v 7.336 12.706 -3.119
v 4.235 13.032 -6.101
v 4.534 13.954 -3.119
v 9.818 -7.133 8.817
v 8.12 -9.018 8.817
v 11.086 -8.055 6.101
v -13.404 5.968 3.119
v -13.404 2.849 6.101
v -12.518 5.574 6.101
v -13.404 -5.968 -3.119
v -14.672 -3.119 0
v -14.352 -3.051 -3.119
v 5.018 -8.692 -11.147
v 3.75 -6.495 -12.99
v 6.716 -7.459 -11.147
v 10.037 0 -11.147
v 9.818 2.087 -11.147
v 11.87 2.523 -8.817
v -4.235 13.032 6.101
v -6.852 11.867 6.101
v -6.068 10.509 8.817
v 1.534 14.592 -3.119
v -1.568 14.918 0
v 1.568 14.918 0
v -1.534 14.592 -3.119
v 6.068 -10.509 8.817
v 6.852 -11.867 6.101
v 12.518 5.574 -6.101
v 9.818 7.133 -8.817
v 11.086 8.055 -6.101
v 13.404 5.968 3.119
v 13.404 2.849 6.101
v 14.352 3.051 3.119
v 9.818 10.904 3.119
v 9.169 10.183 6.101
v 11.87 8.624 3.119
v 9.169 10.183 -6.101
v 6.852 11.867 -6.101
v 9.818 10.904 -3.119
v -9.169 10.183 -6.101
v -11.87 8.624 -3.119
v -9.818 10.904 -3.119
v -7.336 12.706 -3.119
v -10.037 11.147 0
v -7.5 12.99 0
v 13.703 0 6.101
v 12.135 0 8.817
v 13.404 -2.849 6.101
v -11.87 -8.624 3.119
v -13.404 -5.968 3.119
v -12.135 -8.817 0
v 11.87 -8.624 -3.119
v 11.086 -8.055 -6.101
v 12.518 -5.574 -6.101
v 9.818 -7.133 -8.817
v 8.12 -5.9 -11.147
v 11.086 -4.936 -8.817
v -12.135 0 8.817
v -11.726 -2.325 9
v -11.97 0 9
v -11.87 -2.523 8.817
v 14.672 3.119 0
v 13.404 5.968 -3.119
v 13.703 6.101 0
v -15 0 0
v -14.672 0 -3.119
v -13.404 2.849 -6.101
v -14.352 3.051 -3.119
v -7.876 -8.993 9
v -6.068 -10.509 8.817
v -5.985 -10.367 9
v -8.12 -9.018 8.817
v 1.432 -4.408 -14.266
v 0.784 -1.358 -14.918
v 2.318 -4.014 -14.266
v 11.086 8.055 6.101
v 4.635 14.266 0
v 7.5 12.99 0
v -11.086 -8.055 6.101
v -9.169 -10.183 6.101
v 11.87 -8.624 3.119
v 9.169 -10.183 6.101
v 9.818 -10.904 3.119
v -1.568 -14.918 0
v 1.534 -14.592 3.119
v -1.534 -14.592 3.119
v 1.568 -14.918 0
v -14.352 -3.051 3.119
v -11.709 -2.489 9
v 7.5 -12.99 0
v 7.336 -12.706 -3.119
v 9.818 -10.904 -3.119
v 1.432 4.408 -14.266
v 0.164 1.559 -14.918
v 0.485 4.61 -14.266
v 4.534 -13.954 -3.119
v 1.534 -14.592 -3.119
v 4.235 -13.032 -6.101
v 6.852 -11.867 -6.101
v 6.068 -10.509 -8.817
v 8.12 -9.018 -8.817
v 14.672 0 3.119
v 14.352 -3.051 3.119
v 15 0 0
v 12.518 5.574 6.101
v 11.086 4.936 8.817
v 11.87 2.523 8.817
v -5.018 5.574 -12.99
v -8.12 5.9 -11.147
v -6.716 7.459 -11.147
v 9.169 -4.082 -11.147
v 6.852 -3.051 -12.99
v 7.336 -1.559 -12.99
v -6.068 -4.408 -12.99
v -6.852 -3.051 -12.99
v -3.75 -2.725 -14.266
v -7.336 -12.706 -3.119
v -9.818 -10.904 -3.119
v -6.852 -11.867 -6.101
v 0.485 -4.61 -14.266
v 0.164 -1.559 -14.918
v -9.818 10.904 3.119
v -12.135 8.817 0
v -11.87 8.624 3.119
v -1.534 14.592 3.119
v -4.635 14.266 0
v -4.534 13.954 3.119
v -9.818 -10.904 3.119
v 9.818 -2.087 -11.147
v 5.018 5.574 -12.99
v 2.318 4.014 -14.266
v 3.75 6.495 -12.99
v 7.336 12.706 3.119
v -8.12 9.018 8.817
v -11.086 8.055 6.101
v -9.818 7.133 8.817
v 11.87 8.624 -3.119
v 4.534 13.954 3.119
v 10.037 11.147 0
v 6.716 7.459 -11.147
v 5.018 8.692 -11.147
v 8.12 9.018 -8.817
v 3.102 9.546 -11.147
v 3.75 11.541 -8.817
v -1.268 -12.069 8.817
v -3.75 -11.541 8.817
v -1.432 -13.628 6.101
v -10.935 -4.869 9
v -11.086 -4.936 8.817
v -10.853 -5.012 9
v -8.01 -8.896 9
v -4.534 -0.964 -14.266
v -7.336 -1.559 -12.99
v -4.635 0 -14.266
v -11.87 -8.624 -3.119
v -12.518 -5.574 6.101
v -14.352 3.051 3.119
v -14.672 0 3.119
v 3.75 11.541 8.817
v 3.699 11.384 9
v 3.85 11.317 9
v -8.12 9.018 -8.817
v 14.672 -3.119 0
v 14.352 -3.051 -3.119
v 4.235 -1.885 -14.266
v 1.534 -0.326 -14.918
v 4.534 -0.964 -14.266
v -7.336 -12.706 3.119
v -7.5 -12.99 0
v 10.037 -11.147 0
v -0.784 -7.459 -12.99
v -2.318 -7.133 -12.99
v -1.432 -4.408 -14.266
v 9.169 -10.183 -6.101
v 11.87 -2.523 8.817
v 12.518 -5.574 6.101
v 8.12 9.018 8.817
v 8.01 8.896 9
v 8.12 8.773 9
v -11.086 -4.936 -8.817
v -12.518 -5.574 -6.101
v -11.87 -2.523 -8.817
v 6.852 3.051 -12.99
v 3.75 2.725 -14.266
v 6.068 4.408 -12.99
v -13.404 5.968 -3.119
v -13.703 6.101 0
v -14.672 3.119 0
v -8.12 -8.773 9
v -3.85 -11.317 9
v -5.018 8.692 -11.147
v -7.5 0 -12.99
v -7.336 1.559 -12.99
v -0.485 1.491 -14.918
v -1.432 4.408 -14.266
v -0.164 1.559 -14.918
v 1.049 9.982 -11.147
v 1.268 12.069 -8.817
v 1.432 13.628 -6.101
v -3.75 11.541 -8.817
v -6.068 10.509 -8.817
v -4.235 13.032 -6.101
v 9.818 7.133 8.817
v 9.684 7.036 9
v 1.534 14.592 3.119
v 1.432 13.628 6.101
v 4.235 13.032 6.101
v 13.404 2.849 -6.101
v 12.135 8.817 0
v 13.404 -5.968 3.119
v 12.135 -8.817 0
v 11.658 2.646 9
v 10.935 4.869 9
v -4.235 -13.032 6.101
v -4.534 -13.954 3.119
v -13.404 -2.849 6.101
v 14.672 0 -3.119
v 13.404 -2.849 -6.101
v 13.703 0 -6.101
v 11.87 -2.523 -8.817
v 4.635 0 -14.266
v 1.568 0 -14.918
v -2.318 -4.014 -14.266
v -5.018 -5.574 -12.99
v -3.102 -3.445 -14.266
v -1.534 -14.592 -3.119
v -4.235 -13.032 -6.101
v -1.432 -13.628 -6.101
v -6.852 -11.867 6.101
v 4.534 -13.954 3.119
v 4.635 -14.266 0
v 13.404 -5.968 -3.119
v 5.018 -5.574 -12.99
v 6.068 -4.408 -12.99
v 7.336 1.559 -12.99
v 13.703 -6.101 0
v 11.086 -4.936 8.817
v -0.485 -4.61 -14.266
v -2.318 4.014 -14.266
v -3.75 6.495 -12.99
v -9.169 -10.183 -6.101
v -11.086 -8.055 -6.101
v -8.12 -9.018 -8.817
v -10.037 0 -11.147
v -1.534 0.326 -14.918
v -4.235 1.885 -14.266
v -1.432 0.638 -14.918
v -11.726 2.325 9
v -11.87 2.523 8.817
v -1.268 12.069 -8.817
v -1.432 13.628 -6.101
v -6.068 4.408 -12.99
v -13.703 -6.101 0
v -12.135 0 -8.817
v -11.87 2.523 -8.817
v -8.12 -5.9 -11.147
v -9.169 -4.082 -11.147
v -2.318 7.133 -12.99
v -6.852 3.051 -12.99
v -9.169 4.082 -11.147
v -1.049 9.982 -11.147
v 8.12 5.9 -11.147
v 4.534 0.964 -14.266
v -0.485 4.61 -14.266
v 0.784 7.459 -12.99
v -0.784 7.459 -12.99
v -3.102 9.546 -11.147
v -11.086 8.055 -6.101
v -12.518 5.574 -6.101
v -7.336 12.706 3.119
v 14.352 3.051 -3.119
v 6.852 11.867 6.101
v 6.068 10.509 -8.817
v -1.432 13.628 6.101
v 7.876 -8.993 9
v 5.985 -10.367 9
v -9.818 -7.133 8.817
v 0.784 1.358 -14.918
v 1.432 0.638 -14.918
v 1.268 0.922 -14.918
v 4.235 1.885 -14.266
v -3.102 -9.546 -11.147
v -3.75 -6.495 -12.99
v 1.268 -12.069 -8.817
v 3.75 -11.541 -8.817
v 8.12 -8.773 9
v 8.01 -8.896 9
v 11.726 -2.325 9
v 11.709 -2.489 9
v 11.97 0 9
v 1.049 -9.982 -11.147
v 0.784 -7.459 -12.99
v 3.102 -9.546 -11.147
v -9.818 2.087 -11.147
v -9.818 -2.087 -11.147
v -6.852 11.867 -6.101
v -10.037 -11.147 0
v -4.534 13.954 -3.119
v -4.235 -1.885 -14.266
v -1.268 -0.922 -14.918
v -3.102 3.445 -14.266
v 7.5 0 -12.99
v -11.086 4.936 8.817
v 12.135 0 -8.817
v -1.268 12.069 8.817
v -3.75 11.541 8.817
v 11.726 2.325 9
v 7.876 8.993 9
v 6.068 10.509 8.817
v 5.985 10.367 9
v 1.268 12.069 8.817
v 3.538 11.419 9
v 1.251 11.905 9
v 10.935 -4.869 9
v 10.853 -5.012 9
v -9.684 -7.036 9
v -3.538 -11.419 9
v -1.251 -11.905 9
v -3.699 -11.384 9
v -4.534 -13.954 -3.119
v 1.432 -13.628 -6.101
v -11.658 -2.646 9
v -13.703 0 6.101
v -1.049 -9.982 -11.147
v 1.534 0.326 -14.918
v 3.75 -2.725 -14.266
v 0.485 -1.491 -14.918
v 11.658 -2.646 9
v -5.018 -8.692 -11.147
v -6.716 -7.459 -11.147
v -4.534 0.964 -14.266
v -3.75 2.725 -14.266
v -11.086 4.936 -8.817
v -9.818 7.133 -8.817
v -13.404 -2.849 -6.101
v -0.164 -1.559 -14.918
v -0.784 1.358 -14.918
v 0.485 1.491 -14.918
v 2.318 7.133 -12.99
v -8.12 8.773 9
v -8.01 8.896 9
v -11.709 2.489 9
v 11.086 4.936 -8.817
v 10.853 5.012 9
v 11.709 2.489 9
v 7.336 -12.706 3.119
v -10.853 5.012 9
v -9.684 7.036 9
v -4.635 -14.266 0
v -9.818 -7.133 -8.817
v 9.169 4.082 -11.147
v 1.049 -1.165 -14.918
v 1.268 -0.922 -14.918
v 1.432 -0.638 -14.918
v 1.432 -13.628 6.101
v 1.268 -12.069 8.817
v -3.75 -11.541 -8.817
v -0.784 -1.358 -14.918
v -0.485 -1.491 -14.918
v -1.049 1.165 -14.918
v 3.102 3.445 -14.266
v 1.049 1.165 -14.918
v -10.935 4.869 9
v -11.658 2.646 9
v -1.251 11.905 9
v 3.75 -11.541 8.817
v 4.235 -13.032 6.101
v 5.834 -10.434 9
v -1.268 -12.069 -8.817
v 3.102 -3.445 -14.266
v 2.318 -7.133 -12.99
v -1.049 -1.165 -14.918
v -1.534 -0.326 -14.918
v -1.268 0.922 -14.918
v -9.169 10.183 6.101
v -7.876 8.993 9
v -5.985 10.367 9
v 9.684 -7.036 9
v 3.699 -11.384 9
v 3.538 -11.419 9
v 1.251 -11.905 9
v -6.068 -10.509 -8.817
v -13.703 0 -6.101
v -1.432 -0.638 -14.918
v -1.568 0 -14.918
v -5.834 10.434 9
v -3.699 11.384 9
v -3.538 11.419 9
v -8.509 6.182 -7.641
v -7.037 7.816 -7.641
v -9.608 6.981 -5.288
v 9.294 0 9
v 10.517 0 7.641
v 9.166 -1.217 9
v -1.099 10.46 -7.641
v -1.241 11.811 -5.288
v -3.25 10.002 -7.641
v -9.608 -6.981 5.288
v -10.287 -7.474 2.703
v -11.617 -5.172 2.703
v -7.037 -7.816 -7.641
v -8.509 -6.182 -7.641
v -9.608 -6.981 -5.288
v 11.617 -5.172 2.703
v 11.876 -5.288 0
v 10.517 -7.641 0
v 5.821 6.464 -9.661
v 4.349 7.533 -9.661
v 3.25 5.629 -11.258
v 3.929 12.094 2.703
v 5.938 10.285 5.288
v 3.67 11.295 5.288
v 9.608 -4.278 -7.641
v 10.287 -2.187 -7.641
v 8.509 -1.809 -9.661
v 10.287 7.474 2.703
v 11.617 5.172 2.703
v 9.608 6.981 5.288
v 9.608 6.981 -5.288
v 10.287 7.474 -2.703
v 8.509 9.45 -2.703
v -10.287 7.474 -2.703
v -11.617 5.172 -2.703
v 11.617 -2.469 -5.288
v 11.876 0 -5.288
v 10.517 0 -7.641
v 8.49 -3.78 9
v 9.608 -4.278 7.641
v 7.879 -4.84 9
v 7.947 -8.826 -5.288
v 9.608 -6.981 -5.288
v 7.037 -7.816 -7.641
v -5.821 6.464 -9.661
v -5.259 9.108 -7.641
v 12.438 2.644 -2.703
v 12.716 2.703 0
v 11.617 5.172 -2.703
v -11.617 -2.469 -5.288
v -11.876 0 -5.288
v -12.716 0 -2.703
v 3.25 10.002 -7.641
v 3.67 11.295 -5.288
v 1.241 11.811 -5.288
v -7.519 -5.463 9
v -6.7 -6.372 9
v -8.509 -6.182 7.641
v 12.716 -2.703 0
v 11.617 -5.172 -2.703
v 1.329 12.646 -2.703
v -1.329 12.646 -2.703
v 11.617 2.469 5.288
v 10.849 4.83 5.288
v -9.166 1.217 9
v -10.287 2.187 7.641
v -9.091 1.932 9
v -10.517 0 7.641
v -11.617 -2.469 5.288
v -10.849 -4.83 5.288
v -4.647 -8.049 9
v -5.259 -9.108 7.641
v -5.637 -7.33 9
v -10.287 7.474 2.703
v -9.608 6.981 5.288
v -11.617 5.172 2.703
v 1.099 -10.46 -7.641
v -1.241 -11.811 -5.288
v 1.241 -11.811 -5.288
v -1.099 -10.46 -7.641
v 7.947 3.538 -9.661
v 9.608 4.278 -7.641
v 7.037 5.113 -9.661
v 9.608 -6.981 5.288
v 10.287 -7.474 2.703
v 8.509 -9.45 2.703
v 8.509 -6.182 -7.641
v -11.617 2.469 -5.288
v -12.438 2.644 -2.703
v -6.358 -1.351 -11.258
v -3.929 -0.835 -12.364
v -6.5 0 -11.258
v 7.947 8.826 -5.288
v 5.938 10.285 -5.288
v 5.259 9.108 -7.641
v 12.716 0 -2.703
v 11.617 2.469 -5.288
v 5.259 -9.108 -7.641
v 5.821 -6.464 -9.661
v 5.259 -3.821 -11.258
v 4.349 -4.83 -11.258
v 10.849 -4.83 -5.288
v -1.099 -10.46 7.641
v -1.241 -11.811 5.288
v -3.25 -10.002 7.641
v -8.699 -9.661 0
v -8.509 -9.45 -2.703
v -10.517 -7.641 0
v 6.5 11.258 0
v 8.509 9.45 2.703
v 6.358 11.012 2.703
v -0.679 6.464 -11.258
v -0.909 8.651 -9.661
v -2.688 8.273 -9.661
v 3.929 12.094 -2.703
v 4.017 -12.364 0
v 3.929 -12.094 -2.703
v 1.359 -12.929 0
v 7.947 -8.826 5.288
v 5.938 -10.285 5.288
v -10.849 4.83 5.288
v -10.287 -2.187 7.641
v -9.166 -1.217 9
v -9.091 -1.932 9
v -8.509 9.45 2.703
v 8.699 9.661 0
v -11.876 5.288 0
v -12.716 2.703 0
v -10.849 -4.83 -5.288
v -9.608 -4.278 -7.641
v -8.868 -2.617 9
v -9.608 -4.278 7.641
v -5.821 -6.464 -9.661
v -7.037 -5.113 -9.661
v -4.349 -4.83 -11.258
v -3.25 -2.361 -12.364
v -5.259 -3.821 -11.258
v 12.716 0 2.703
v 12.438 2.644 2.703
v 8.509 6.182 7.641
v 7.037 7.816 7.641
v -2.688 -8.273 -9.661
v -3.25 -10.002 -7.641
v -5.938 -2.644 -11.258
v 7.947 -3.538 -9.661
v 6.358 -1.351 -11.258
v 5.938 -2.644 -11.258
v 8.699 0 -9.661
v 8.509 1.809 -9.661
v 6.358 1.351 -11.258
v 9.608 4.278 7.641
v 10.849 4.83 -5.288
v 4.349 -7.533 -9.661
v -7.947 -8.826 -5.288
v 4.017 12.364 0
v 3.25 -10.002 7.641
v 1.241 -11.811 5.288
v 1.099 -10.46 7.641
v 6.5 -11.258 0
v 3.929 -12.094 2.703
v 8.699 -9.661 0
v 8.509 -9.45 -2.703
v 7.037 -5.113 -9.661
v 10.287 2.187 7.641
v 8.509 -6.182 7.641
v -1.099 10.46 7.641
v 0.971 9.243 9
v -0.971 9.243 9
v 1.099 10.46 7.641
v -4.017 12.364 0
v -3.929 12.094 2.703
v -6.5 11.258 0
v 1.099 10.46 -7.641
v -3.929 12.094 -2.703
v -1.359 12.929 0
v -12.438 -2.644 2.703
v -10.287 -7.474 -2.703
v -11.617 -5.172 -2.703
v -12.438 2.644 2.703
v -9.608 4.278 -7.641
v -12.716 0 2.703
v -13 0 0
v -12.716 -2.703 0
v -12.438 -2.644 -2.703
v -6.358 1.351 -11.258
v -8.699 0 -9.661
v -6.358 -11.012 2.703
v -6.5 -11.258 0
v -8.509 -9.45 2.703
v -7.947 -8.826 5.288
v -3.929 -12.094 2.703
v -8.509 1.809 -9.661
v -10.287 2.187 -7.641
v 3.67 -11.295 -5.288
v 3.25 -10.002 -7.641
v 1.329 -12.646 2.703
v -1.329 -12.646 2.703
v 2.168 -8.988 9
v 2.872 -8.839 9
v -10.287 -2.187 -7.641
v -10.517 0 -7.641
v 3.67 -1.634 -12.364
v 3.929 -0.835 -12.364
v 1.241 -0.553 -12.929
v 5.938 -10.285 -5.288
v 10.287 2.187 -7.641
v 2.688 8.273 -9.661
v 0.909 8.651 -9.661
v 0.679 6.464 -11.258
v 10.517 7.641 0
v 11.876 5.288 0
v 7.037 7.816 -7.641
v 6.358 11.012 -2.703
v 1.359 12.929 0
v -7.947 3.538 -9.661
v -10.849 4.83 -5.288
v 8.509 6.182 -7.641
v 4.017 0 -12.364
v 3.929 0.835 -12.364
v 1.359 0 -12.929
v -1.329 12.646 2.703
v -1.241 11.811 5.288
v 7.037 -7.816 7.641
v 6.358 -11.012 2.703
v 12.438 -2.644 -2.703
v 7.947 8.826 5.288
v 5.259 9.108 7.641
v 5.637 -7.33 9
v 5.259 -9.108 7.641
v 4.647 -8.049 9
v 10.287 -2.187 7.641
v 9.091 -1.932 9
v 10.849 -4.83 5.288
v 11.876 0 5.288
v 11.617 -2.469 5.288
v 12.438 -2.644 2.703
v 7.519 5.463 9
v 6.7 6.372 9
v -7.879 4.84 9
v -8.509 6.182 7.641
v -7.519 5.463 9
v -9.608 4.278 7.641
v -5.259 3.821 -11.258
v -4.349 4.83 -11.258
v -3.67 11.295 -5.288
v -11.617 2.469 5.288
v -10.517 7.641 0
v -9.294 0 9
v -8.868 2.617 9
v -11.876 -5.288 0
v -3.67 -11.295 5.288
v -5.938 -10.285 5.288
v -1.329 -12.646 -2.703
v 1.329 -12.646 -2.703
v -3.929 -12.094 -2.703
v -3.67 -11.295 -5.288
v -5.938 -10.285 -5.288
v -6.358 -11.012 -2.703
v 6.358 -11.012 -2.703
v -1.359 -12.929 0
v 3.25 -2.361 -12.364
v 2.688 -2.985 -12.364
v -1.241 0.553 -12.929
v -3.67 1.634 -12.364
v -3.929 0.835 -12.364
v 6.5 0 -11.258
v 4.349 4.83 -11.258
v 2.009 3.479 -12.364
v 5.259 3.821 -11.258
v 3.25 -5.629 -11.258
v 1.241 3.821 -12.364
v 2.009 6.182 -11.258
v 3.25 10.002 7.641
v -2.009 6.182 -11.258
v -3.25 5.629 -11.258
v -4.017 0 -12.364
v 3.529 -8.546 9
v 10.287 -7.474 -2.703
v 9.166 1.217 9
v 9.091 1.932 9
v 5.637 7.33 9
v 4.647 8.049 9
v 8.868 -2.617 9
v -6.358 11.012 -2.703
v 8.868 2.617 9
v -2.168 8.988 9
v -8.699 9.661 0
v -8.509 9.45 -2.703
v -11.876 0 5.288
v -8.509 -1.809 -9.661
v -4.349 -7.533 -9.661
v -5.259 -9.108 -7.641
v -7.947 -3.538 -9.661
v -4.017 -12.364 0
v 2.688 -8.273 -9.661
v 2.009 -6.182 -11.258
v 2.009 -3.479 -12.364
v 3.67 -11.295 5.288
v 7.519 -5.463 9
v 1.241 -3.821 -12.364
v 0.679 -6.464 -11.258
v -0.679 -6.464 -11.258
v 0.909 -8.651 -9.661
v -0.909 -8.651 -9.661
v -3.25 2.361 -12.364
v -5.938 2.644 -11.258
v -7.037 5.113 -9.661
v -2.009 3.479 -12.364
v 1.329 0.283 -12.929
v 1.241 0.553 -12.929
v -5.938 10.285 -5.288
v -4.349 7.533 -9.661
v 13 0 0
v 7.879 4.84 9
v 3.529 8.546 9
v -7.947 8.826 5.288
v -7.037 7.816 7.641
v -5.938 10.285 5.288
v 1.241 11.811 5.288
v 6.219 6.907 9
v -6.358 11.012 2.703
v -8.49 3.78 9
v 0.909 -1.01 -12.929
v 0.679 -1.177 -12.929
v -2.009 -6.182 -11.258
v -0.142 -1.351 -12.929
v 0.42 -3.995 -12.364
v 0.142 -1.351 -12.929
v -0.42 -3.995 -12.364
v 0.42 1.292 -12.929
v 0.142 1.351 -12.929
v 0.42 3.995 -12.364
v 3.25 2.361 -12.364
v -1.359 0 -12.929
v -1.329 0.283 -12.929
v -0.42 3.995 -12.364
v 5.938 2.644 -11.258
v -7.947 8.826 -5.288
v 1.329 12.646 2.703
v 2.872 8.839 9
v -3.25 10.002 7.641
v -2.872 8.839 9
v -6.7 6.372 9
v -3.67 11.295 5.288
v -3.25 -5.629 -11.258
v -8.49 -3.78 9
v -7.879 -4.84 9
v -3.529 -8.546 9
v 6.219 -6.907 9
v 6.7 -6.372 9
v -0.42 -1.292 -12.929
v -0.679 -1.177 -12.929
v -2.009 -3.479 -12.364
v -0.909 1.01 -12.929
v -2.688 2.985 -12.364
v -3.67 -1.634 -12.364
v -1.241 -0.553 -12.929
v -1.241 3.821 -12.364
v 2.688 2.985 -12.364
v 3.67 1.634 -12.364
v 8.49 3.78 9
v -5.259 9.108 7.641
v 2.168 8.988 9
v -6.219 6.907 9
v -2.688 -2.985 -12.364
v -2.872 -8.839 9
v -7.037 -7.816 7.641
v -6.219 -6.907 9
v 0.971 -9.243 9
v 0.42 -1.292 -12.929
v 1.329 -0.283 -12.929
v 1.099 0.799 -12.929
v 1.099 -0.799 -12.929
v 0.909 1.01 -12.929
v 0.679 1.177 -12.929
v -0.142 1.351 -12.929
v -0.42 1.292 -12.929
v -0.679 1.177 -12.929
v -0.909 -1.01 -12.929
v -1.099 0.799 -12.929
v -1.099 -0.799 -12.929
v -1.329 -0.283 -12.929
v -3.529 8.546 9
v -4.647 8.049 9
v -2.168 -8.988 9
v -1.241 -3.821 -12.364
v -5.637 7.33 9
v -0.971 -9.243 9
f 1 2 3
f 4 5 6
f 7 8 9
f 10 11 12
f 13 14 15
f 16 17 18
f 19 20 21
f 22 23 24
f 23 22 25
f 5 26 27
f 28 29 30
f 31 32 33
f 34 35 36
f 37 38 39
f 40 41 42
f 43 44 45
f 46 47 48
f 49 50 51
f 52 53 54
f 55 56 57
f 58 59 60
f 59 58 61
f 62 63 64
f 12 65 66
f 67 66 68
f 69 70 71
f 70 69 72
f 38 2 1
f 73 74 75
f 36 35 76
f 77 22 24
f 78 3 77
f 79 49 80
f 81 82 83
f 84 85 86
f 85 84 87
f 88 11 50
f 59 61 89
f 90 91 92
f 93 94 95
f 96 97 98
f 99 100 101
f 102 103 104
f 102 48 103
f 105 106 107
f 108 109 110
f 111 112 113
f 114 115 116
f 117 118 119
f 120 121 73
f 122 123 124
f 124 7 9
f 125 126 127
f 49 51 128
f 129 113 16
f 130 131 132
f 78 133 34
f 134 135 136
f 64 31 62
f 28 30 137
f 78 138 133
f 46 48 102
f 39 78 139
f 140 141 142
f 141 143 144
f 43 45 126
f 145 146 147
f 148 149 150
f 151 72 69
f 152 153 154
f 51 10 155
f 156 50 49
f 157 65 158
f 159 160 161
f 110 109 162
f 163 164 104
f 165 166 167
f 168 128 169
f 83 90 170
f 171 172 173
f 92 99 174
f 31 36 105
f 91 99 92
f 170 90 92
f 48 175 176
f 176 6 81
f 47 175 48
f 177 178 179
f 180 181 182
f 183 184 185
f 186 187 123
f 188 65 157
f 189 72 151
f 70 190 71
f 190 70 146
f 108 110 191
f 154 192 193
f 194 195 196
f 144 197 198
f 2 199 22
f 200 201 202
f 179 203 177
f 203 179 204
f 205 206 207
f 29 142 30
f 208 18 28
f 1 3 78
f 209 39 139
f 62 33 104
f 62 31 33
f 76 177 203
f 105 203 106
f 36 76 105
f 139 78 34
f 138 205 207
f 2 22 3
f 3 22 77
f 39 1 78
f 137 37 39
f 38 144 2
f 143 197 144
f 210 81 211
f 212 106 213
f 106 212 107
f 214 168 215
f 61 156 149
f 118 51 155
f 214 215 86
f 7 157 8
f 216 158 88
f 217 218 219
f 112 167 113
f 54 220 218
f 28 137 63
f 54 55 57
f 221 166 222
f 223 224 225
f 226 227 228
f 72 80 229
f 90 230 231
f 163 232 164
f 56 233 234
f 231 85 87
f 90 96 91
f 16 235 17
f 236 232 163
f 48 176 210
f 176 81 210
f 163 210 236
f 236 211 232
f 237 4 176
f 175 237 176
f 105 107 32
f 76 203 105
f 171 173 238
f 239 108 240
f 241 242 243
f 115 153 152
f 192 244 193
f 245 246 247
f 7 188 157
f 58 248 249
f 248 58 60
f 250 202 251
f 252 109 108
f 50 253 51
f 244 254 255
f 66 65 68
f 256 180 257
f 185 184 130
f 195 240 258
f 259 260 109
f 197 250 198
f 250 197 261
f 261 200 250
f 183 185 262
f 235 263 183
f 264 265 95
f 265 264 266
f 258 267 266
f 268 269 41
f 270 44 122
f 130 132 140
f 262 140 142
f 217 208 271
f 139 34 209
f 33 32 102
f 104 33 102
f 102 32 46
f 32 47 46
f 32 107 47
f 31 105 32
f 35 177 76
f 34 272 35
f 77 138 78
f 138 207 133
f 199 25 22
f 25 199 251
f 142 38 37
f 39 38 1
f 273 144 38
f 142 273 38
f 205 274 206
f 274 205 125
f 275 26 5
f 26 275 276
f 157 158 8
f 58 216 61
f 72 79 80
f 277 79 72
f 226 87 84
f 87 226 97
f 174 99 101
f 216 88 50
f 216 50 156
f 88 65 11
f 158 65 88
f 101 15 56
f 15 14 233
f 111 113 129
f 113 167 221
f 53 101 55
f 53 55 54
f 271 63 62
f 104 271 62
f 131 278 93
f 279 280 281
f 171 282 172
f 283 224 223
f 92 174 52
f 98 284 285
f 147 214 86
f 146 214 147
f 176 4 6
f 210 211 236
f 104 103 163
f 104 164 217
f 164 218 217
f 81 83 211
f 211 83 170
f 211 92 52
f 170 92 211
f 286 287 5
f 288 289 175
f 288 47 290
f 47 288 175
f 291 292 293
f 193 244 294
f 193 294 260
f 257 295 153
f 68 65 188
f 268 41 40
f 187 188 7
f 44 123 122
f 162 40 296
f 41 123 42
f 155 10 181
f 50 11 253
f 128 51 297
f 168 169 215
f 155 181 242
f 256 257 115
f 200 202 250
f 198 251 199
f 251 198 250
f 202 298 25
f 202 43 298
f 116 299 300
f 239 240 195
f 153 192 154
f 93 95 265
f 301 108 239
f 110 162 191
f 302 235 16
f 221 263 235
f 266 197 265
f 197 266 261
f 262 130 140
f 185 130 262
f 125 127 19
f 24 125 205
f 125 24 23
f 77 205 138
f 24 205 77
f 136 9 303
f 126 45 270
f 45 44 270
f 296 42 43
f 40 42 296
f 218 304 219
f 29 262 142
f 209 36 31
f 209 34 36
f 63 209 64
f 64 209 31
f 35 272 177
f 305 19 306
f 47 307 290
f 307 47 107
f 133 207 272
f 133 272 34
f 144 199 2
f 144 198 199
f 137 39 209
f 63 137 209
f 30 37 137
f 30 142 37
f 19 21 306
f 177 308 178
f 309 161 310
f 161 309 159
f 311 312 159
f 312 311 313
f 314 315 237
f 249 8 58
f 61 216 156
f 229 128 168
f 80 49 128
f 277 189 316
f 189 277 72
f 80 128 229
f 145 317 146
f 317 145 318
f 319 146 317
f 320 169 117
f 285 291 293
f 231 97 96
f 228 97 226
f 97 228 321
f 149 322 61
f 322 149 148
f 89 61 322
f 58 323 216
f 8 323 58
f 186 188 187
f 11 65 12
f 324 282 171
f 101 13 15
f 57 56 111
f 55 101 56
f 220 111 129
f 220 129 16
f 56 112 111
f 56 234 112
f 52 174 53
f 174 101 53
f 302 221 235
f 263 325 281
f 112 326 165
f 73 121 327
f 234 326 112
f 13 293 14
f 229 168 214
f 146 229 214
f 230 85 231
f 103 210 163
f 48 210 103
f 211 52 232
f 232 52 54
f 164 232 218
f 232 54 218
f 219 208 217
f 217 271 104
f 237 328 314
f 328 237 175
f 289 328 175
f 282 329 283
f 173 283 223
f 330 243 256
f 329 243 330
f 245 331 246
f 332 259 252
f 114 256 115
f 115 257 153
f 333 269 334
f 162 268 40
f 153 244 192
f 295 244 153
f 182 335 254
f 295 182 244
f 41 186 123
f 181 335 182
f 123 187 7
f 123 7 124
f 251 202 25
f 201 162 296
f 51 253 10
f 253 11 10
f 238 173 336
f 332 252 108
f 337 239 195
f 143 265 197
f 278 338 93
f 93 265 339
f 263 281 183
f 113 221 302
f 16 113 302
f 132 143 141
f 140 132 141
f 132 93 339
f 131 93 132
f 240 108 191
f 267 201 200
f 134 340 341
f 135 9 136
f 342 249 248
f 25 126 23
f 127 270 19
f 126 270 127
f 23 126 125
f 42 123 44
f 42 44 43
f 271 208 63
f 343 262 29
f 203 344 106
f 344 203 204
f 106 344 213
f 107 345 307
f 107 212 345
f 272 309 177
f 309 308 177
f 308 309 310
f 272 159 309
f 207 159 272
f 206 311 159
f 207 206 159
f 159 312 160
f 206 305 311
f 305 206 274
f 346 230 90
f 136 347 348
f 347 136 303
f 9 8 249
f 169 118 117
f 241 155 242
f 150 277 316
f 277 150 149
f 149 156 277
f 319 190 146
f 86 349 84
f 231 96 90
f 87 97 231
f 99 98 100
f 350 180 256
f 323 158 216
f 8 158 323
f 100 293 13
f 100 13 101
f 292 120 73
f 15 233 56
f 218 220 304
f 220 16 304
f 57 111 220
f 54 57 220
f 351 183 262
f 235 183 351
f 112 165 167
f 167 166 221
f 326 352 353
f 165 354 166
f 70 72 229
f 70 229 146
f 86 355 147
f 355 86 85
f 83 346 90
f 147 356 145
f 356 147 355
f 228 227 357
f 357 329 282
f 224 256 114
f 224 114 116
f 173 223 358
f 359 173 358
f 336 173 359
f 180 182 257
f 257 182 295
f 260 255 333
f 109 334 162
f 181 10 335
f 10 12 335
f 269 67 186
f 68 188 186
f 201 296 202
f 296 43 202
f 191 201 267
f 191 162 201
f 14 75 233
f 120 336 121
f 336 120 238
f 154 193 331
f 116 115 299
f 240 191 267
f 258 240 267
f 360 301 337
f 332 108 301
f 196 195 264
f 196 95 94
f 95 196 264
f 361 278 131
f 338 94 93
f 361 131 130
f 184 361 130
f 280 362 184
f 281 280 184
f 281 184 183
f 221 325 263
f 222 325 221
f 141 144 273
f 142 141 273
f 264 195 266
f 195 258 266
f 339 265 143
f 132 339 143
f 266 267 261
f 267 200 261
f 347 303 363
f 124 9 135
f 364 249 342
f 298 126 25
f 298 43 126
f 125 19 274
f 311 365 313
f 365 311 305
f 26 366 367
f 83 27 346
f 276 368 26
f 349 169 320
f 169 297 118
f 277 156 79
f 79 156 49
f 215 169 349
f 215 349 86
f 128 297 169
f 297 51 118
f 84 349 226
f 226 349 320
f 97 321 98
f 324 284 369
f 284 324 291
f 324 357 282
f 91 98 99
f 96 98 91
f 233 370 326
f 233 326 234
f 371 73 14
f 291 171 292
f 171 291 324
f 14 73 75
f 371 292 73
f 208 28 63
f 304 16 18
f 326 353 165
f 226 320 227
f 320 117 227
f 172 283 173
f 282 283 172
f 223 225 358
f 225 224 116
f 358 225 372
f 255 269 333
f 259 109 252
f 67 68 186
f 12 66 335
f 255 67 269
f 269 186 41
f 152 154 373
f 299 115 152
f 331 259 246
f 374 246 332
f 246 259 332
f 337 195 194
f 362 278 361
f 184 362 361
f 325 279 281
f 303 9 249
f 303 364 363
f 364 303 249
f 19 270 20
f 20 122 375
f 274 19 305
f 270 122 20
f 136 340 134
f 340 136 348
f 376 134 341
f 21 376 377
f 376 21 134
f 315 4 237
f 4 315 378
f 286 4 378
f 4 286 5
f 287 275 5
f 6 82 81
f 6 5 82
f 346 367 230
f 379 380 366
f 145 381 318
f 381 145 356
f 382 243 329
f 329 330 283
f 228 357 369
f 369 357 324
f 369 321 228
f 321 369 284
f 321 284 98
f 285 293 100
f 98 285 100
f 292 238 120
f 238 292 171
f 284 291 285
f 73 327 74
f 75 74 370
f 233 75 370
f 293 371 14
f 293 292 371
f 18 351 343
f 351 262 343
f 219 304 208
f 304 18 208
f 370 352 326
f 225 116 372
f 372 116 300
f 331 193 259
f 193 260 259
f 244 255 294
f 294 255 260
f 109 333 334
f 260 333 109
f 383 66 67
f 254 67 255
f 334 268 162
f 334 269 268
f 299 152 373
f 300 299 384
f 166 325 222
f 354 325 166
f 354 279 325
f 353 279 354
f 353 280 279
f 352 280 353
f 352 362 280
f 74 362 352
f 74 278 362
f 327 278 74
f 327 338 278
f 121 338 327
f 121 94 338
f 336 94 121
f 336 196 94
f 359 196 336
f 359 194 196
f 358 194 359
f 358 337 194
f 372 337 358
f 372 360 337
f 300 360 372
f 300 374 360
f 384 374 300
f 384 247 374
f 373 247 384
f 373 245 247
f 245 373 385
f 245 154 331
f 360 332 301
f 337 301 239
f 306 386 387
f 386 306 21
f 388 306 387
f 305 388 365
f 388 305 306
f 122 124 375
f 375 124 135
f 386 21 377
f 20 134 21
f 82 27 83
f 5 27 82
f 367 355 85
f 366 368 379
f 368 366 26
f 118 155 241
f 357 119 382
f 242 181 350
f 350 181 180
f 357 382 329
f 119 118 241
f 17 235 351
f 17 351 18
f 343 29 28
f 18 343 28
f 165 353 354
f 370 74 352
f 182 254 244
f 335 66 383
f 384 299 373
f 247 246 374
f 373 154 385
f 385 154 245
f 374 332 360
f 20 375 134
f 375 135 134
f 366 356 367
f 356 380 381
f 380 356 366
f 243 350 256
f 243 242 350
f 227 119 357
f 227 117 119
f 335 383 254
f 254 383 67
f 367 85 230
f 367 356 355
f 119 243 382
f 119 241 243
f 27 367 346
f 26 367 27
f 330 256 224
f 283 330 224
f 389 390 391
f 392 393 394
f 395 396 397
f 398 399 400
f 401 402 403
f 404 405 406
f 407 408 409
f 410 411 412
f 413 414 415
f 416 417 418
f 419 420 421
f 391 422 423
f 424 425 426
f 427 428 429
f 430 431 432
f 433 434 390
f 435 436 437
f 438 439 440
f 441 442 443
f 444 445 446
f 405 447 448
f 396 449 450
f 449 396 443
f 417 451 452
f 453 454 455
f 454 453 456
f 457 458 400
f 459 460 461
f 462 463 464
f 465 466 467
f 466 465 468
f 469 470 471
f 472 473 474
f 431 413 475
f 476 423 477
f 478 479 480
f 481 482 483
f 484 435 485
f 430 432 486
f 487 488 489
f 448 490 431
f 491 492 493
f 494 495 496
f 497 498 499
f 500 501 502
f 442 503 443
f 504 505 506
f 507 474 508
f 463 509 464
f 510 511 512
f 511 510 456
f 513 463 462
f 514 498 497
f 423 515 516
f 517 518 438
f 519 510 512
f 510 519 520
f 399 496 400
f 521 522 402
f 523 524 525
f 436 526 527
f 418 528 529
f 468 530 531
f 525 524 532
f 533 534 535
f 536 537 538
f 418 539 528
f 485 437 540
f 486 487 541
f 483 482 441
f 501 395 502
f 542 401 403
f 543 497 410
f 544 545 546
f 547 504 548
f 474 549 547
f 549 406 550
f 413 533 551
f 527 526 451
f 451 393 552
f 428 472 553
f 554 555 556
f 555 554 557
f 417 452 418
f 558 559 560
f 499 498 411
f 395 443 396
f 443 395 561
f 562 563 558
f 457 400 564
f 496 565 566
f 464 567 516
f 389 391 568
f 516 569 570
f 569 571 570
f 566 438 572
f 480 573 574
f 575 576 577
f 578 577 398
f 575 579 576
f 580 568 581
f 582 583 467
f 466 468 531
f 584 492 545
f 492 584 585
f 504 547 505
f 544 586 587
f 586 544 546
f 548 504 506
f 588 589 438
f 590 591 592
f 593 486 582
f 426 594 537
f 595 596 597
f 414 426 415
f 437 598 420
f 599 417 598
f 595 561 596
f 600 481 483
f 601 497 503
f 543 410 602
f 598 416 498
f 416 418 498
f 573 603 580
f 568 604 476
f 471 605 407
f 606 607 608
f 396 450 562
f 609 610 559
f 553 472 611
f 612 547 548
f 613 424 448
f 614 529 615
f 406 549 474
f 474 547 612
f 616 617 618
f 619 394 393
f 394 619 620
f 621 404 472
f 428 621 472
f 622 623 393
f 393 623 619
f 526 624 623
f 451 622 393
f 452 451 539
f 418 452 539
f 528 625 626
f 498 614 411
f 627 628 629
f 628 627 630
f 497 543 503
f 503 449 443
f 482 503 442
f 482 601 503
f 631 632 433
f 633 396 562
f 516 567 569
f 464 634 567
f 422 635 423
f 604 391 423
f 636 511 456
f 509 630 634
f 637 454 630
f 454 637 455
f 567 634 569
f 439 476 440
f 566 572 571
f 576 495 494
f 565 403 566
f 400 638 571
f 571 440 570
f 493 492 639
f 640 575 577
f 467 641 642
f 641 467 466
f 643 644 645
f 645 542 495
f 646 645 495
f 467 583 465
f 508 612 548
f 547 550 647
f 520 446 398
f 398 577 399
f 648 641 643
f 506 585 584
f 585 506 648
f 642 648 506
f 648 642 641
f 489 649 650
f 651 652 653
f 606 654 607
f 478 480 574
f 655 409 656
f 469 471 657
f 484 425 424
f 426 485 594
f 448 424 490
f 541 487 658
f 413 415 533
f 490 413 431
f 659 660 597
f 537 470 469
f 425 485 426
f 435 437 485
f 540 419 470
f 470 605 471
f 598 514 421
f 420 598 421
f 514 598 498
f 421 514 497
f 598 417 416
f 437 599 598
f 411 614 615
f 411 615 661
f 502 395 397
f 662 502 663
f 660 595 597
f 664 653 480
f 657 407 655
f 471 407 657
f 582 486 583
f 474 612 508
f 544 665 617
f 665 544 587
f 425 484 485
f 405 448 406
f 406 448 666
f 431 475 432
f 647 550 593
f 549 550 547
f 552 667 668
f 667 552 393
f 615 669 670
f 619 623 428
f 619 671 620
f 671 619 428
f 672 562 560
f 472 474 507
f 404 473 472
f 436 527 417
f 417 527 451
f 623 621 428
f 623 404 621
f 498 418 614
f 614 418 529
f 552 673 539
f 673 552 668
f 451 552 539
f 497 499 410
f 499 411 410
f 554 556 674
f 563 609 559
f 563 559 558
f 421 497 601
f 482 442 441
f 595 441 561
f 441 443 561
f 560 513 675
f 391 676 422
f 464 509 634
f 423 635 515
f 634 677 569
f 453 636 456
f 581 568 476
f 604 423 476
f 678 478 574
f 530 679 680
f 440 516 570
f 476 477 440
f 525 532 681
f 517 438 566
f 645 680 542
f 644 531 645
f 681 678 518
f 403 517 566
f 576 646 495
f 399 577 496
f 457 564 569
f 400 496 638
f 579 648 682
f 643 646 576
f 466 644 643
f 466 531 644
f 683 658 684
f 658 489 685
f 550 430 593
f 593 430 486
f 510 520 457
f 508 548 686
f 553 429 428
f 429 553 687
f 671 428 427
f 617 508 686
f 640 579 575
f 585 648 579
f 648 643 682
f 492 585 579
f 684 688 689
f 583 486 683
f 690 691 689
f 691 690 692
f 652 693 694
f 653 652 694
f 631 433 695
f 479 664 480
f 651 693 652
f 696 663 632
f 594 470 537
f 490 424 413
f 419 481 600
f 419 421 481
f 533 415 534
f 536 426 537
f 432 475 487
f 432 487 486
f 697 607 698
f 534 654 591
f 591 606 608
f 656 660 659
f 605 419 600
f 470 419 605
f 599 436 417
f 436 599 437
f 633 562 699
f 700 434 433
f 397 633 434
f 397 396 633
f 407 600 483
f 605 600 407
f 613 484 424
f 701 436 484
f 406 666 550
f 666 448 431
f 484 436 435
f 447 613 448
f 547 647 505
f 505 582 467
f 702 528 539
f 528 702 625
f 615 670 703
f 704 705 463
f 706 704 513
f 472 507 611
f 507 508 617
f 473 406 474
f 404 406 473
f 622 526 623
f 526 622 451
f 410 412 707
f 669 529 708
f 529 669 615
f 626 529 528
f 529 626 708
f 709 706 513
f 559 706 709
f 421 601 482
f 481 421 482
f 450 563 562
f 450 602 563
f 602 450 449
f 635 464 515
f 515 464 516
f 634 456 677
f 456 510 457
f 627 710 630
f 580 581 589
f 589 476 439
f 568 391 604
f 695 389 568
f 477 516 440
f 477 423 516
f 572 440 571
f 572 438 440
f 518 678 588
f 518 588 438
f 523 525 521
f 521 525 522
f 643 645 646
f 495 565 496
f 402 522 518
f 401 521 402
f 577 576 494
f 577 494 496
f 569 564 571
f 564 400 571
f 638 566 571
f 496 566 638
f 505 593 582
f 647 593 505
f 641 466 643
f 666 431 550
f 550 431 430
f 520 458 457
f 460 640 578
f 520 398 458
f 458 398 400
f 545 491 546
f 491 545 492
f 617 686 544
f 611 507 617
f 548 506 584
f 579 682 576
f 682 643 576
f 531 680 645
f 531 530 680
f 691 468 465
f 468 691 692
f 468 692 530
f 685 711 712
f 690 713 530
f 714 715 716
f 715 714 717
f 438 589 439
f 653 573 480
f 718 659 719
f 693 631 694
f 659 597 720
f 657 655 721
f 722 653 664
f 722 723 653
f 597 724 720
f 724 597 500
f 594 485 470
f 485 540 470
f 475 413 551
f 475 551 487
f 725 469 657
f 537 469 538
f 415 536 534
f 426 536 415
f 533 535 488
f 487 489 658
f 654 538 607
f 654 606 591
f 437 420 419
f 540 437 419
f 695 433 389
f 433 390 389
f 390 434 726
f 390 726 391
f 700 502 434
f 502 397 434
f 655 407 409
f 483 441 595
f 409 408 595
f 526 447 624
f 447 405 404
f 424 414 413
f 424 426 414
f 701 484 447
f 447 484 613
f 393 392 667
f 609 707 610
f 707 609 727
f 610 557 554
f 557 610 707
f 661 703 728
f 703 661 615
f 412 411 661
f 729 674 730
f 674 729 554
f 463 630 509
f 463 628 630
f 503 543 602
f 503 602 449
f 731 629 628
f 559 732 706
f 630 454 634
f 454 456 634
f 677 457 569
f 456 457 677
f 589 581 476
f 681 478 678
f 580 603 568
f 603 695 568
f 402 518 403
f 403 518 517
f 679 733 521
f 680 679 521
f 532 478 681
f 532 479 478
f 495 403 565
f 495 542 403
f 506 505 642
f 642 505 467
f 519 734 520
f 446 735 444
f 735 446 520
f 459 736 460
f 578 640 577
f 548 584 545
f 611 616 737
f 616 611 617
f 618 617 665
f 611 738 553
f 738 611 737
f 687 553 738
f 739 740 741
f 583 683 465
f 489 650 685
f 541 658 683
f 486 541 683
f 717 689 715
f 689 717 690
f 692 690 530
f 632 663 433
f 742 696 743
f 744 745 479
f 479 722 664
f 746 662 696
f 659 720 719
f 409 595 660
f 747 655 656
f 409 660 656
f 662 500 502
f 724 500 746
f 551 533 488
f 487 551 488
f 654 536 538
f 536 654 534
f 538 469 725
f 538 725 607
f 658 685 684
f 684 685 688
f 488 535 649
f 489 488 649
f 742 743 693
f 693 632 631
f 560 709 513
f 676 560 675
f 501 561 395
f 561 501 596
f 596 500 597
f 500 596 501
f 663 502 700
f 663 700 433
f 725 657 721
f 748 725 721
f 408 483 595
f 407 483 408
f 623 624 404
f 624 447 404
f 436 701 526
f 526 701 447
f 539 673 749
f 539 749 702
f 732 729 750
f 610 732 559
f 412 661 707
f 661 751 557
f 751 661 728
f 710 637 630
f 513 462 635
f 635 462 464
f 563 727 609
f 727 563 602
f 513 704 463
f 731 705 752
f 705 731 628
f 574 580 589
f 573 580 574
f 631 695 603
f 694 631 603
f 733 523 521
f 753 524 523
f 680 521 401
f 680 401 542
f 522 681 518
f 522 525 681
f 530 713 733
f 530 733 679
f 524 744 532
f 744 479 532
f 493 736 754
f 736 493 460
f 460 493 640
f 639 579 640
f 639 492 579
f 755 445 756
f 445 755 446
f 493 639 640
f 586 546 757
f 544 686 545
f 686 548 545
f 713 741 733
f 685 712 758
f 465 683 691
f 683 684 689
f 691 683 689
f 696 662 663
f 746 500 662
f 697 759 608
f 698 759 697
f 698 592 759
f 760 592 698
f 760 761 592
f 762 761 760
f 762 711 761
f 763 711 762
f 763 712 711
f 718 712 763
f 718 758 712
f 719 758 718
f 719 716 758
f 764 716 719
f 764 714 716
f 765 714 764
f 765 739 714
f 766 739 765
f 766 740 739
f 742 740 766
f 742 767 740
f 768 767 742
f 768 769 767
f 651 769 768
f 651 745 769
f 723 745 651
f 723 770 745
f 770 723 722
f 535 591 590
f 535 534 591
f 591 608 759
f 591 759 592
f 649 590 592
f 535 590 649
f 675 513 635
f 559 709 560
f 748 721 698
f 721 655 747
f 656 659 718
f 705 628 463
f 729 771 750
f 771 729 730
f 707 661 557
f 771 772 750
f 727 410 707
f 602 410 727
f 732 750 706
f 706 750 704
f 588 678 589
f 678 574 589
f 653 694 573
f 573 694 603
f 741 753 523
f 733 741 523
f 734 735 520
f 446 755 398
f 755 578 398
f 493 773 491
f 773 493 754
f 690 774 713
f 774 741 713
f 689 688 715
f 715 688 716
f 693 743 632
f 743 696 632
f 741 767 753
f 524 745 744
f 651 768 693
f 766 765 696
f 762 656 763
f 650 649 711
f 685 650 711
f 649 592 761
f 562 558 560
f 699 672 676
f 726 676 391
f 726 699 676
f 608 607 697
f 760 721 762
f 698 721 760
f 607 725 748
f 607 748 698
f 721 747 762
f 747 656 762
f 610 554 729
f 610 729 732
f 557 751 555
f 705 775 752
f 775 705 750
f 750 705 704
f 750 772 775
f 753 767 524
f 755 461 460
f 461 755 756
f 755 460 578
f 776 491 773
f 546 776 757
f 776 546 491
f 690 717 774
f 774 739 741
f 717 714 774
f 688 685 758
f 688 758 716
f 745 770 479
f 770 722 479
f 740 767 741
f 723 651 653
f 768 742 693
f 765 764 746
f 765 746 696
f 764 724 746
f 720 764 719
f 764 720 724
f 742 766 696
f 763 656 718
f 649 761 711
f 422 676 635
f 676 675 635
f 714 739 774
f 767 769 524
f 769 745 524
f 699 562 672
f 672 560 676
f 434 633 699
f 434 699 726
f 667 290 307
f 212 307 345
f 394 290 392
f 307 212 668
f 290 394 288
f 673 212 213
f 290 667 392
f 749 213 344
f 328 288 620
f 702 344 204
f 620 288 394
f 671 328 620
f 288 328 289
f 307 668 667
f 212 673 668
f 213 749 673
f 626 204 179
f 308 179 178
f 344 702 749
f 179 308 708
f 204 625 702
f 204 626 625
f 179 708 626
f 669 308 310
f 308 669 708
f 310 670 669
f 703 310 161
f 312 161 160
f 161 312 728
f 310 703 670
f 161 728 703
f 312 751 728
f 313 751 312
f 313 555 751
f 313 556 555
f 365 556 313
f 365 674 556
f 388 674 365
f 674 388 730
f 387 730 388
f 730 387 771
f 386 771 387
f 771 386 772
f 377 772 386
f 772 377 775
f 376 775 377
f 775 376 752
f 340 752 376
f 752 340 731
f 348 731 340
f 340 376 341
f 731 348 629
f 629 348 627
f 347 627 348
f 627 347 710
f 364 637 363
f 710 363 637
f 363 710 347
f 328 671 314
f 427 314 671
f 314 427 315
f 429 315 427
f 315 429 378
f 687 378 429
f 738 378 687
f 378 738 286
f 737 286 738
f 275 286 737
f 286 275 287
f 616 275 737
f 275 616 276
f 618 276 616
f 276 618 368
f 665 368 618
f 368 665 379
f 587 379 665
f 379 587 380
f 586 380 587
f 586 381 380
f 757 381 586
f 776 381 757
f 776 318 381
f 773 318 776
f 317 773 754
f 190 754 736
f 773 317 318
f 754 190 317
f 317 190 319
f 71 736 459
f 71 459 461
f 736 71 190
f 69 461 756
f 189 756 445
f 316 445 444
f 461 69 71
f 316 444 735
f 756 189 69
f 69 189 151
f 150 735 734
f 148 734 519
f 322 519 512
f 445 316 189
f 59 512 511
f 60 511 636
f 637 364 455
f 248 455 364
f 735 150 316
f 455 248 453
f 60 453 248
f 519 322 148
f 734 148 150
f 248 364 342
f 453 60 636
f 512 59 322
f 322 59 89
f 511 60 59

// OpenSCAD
difference() {
    sphere(r=15);
    sphere(r=13);
    translate([0,0,13])
        cube(size = [25,25,8], center = true);
}
